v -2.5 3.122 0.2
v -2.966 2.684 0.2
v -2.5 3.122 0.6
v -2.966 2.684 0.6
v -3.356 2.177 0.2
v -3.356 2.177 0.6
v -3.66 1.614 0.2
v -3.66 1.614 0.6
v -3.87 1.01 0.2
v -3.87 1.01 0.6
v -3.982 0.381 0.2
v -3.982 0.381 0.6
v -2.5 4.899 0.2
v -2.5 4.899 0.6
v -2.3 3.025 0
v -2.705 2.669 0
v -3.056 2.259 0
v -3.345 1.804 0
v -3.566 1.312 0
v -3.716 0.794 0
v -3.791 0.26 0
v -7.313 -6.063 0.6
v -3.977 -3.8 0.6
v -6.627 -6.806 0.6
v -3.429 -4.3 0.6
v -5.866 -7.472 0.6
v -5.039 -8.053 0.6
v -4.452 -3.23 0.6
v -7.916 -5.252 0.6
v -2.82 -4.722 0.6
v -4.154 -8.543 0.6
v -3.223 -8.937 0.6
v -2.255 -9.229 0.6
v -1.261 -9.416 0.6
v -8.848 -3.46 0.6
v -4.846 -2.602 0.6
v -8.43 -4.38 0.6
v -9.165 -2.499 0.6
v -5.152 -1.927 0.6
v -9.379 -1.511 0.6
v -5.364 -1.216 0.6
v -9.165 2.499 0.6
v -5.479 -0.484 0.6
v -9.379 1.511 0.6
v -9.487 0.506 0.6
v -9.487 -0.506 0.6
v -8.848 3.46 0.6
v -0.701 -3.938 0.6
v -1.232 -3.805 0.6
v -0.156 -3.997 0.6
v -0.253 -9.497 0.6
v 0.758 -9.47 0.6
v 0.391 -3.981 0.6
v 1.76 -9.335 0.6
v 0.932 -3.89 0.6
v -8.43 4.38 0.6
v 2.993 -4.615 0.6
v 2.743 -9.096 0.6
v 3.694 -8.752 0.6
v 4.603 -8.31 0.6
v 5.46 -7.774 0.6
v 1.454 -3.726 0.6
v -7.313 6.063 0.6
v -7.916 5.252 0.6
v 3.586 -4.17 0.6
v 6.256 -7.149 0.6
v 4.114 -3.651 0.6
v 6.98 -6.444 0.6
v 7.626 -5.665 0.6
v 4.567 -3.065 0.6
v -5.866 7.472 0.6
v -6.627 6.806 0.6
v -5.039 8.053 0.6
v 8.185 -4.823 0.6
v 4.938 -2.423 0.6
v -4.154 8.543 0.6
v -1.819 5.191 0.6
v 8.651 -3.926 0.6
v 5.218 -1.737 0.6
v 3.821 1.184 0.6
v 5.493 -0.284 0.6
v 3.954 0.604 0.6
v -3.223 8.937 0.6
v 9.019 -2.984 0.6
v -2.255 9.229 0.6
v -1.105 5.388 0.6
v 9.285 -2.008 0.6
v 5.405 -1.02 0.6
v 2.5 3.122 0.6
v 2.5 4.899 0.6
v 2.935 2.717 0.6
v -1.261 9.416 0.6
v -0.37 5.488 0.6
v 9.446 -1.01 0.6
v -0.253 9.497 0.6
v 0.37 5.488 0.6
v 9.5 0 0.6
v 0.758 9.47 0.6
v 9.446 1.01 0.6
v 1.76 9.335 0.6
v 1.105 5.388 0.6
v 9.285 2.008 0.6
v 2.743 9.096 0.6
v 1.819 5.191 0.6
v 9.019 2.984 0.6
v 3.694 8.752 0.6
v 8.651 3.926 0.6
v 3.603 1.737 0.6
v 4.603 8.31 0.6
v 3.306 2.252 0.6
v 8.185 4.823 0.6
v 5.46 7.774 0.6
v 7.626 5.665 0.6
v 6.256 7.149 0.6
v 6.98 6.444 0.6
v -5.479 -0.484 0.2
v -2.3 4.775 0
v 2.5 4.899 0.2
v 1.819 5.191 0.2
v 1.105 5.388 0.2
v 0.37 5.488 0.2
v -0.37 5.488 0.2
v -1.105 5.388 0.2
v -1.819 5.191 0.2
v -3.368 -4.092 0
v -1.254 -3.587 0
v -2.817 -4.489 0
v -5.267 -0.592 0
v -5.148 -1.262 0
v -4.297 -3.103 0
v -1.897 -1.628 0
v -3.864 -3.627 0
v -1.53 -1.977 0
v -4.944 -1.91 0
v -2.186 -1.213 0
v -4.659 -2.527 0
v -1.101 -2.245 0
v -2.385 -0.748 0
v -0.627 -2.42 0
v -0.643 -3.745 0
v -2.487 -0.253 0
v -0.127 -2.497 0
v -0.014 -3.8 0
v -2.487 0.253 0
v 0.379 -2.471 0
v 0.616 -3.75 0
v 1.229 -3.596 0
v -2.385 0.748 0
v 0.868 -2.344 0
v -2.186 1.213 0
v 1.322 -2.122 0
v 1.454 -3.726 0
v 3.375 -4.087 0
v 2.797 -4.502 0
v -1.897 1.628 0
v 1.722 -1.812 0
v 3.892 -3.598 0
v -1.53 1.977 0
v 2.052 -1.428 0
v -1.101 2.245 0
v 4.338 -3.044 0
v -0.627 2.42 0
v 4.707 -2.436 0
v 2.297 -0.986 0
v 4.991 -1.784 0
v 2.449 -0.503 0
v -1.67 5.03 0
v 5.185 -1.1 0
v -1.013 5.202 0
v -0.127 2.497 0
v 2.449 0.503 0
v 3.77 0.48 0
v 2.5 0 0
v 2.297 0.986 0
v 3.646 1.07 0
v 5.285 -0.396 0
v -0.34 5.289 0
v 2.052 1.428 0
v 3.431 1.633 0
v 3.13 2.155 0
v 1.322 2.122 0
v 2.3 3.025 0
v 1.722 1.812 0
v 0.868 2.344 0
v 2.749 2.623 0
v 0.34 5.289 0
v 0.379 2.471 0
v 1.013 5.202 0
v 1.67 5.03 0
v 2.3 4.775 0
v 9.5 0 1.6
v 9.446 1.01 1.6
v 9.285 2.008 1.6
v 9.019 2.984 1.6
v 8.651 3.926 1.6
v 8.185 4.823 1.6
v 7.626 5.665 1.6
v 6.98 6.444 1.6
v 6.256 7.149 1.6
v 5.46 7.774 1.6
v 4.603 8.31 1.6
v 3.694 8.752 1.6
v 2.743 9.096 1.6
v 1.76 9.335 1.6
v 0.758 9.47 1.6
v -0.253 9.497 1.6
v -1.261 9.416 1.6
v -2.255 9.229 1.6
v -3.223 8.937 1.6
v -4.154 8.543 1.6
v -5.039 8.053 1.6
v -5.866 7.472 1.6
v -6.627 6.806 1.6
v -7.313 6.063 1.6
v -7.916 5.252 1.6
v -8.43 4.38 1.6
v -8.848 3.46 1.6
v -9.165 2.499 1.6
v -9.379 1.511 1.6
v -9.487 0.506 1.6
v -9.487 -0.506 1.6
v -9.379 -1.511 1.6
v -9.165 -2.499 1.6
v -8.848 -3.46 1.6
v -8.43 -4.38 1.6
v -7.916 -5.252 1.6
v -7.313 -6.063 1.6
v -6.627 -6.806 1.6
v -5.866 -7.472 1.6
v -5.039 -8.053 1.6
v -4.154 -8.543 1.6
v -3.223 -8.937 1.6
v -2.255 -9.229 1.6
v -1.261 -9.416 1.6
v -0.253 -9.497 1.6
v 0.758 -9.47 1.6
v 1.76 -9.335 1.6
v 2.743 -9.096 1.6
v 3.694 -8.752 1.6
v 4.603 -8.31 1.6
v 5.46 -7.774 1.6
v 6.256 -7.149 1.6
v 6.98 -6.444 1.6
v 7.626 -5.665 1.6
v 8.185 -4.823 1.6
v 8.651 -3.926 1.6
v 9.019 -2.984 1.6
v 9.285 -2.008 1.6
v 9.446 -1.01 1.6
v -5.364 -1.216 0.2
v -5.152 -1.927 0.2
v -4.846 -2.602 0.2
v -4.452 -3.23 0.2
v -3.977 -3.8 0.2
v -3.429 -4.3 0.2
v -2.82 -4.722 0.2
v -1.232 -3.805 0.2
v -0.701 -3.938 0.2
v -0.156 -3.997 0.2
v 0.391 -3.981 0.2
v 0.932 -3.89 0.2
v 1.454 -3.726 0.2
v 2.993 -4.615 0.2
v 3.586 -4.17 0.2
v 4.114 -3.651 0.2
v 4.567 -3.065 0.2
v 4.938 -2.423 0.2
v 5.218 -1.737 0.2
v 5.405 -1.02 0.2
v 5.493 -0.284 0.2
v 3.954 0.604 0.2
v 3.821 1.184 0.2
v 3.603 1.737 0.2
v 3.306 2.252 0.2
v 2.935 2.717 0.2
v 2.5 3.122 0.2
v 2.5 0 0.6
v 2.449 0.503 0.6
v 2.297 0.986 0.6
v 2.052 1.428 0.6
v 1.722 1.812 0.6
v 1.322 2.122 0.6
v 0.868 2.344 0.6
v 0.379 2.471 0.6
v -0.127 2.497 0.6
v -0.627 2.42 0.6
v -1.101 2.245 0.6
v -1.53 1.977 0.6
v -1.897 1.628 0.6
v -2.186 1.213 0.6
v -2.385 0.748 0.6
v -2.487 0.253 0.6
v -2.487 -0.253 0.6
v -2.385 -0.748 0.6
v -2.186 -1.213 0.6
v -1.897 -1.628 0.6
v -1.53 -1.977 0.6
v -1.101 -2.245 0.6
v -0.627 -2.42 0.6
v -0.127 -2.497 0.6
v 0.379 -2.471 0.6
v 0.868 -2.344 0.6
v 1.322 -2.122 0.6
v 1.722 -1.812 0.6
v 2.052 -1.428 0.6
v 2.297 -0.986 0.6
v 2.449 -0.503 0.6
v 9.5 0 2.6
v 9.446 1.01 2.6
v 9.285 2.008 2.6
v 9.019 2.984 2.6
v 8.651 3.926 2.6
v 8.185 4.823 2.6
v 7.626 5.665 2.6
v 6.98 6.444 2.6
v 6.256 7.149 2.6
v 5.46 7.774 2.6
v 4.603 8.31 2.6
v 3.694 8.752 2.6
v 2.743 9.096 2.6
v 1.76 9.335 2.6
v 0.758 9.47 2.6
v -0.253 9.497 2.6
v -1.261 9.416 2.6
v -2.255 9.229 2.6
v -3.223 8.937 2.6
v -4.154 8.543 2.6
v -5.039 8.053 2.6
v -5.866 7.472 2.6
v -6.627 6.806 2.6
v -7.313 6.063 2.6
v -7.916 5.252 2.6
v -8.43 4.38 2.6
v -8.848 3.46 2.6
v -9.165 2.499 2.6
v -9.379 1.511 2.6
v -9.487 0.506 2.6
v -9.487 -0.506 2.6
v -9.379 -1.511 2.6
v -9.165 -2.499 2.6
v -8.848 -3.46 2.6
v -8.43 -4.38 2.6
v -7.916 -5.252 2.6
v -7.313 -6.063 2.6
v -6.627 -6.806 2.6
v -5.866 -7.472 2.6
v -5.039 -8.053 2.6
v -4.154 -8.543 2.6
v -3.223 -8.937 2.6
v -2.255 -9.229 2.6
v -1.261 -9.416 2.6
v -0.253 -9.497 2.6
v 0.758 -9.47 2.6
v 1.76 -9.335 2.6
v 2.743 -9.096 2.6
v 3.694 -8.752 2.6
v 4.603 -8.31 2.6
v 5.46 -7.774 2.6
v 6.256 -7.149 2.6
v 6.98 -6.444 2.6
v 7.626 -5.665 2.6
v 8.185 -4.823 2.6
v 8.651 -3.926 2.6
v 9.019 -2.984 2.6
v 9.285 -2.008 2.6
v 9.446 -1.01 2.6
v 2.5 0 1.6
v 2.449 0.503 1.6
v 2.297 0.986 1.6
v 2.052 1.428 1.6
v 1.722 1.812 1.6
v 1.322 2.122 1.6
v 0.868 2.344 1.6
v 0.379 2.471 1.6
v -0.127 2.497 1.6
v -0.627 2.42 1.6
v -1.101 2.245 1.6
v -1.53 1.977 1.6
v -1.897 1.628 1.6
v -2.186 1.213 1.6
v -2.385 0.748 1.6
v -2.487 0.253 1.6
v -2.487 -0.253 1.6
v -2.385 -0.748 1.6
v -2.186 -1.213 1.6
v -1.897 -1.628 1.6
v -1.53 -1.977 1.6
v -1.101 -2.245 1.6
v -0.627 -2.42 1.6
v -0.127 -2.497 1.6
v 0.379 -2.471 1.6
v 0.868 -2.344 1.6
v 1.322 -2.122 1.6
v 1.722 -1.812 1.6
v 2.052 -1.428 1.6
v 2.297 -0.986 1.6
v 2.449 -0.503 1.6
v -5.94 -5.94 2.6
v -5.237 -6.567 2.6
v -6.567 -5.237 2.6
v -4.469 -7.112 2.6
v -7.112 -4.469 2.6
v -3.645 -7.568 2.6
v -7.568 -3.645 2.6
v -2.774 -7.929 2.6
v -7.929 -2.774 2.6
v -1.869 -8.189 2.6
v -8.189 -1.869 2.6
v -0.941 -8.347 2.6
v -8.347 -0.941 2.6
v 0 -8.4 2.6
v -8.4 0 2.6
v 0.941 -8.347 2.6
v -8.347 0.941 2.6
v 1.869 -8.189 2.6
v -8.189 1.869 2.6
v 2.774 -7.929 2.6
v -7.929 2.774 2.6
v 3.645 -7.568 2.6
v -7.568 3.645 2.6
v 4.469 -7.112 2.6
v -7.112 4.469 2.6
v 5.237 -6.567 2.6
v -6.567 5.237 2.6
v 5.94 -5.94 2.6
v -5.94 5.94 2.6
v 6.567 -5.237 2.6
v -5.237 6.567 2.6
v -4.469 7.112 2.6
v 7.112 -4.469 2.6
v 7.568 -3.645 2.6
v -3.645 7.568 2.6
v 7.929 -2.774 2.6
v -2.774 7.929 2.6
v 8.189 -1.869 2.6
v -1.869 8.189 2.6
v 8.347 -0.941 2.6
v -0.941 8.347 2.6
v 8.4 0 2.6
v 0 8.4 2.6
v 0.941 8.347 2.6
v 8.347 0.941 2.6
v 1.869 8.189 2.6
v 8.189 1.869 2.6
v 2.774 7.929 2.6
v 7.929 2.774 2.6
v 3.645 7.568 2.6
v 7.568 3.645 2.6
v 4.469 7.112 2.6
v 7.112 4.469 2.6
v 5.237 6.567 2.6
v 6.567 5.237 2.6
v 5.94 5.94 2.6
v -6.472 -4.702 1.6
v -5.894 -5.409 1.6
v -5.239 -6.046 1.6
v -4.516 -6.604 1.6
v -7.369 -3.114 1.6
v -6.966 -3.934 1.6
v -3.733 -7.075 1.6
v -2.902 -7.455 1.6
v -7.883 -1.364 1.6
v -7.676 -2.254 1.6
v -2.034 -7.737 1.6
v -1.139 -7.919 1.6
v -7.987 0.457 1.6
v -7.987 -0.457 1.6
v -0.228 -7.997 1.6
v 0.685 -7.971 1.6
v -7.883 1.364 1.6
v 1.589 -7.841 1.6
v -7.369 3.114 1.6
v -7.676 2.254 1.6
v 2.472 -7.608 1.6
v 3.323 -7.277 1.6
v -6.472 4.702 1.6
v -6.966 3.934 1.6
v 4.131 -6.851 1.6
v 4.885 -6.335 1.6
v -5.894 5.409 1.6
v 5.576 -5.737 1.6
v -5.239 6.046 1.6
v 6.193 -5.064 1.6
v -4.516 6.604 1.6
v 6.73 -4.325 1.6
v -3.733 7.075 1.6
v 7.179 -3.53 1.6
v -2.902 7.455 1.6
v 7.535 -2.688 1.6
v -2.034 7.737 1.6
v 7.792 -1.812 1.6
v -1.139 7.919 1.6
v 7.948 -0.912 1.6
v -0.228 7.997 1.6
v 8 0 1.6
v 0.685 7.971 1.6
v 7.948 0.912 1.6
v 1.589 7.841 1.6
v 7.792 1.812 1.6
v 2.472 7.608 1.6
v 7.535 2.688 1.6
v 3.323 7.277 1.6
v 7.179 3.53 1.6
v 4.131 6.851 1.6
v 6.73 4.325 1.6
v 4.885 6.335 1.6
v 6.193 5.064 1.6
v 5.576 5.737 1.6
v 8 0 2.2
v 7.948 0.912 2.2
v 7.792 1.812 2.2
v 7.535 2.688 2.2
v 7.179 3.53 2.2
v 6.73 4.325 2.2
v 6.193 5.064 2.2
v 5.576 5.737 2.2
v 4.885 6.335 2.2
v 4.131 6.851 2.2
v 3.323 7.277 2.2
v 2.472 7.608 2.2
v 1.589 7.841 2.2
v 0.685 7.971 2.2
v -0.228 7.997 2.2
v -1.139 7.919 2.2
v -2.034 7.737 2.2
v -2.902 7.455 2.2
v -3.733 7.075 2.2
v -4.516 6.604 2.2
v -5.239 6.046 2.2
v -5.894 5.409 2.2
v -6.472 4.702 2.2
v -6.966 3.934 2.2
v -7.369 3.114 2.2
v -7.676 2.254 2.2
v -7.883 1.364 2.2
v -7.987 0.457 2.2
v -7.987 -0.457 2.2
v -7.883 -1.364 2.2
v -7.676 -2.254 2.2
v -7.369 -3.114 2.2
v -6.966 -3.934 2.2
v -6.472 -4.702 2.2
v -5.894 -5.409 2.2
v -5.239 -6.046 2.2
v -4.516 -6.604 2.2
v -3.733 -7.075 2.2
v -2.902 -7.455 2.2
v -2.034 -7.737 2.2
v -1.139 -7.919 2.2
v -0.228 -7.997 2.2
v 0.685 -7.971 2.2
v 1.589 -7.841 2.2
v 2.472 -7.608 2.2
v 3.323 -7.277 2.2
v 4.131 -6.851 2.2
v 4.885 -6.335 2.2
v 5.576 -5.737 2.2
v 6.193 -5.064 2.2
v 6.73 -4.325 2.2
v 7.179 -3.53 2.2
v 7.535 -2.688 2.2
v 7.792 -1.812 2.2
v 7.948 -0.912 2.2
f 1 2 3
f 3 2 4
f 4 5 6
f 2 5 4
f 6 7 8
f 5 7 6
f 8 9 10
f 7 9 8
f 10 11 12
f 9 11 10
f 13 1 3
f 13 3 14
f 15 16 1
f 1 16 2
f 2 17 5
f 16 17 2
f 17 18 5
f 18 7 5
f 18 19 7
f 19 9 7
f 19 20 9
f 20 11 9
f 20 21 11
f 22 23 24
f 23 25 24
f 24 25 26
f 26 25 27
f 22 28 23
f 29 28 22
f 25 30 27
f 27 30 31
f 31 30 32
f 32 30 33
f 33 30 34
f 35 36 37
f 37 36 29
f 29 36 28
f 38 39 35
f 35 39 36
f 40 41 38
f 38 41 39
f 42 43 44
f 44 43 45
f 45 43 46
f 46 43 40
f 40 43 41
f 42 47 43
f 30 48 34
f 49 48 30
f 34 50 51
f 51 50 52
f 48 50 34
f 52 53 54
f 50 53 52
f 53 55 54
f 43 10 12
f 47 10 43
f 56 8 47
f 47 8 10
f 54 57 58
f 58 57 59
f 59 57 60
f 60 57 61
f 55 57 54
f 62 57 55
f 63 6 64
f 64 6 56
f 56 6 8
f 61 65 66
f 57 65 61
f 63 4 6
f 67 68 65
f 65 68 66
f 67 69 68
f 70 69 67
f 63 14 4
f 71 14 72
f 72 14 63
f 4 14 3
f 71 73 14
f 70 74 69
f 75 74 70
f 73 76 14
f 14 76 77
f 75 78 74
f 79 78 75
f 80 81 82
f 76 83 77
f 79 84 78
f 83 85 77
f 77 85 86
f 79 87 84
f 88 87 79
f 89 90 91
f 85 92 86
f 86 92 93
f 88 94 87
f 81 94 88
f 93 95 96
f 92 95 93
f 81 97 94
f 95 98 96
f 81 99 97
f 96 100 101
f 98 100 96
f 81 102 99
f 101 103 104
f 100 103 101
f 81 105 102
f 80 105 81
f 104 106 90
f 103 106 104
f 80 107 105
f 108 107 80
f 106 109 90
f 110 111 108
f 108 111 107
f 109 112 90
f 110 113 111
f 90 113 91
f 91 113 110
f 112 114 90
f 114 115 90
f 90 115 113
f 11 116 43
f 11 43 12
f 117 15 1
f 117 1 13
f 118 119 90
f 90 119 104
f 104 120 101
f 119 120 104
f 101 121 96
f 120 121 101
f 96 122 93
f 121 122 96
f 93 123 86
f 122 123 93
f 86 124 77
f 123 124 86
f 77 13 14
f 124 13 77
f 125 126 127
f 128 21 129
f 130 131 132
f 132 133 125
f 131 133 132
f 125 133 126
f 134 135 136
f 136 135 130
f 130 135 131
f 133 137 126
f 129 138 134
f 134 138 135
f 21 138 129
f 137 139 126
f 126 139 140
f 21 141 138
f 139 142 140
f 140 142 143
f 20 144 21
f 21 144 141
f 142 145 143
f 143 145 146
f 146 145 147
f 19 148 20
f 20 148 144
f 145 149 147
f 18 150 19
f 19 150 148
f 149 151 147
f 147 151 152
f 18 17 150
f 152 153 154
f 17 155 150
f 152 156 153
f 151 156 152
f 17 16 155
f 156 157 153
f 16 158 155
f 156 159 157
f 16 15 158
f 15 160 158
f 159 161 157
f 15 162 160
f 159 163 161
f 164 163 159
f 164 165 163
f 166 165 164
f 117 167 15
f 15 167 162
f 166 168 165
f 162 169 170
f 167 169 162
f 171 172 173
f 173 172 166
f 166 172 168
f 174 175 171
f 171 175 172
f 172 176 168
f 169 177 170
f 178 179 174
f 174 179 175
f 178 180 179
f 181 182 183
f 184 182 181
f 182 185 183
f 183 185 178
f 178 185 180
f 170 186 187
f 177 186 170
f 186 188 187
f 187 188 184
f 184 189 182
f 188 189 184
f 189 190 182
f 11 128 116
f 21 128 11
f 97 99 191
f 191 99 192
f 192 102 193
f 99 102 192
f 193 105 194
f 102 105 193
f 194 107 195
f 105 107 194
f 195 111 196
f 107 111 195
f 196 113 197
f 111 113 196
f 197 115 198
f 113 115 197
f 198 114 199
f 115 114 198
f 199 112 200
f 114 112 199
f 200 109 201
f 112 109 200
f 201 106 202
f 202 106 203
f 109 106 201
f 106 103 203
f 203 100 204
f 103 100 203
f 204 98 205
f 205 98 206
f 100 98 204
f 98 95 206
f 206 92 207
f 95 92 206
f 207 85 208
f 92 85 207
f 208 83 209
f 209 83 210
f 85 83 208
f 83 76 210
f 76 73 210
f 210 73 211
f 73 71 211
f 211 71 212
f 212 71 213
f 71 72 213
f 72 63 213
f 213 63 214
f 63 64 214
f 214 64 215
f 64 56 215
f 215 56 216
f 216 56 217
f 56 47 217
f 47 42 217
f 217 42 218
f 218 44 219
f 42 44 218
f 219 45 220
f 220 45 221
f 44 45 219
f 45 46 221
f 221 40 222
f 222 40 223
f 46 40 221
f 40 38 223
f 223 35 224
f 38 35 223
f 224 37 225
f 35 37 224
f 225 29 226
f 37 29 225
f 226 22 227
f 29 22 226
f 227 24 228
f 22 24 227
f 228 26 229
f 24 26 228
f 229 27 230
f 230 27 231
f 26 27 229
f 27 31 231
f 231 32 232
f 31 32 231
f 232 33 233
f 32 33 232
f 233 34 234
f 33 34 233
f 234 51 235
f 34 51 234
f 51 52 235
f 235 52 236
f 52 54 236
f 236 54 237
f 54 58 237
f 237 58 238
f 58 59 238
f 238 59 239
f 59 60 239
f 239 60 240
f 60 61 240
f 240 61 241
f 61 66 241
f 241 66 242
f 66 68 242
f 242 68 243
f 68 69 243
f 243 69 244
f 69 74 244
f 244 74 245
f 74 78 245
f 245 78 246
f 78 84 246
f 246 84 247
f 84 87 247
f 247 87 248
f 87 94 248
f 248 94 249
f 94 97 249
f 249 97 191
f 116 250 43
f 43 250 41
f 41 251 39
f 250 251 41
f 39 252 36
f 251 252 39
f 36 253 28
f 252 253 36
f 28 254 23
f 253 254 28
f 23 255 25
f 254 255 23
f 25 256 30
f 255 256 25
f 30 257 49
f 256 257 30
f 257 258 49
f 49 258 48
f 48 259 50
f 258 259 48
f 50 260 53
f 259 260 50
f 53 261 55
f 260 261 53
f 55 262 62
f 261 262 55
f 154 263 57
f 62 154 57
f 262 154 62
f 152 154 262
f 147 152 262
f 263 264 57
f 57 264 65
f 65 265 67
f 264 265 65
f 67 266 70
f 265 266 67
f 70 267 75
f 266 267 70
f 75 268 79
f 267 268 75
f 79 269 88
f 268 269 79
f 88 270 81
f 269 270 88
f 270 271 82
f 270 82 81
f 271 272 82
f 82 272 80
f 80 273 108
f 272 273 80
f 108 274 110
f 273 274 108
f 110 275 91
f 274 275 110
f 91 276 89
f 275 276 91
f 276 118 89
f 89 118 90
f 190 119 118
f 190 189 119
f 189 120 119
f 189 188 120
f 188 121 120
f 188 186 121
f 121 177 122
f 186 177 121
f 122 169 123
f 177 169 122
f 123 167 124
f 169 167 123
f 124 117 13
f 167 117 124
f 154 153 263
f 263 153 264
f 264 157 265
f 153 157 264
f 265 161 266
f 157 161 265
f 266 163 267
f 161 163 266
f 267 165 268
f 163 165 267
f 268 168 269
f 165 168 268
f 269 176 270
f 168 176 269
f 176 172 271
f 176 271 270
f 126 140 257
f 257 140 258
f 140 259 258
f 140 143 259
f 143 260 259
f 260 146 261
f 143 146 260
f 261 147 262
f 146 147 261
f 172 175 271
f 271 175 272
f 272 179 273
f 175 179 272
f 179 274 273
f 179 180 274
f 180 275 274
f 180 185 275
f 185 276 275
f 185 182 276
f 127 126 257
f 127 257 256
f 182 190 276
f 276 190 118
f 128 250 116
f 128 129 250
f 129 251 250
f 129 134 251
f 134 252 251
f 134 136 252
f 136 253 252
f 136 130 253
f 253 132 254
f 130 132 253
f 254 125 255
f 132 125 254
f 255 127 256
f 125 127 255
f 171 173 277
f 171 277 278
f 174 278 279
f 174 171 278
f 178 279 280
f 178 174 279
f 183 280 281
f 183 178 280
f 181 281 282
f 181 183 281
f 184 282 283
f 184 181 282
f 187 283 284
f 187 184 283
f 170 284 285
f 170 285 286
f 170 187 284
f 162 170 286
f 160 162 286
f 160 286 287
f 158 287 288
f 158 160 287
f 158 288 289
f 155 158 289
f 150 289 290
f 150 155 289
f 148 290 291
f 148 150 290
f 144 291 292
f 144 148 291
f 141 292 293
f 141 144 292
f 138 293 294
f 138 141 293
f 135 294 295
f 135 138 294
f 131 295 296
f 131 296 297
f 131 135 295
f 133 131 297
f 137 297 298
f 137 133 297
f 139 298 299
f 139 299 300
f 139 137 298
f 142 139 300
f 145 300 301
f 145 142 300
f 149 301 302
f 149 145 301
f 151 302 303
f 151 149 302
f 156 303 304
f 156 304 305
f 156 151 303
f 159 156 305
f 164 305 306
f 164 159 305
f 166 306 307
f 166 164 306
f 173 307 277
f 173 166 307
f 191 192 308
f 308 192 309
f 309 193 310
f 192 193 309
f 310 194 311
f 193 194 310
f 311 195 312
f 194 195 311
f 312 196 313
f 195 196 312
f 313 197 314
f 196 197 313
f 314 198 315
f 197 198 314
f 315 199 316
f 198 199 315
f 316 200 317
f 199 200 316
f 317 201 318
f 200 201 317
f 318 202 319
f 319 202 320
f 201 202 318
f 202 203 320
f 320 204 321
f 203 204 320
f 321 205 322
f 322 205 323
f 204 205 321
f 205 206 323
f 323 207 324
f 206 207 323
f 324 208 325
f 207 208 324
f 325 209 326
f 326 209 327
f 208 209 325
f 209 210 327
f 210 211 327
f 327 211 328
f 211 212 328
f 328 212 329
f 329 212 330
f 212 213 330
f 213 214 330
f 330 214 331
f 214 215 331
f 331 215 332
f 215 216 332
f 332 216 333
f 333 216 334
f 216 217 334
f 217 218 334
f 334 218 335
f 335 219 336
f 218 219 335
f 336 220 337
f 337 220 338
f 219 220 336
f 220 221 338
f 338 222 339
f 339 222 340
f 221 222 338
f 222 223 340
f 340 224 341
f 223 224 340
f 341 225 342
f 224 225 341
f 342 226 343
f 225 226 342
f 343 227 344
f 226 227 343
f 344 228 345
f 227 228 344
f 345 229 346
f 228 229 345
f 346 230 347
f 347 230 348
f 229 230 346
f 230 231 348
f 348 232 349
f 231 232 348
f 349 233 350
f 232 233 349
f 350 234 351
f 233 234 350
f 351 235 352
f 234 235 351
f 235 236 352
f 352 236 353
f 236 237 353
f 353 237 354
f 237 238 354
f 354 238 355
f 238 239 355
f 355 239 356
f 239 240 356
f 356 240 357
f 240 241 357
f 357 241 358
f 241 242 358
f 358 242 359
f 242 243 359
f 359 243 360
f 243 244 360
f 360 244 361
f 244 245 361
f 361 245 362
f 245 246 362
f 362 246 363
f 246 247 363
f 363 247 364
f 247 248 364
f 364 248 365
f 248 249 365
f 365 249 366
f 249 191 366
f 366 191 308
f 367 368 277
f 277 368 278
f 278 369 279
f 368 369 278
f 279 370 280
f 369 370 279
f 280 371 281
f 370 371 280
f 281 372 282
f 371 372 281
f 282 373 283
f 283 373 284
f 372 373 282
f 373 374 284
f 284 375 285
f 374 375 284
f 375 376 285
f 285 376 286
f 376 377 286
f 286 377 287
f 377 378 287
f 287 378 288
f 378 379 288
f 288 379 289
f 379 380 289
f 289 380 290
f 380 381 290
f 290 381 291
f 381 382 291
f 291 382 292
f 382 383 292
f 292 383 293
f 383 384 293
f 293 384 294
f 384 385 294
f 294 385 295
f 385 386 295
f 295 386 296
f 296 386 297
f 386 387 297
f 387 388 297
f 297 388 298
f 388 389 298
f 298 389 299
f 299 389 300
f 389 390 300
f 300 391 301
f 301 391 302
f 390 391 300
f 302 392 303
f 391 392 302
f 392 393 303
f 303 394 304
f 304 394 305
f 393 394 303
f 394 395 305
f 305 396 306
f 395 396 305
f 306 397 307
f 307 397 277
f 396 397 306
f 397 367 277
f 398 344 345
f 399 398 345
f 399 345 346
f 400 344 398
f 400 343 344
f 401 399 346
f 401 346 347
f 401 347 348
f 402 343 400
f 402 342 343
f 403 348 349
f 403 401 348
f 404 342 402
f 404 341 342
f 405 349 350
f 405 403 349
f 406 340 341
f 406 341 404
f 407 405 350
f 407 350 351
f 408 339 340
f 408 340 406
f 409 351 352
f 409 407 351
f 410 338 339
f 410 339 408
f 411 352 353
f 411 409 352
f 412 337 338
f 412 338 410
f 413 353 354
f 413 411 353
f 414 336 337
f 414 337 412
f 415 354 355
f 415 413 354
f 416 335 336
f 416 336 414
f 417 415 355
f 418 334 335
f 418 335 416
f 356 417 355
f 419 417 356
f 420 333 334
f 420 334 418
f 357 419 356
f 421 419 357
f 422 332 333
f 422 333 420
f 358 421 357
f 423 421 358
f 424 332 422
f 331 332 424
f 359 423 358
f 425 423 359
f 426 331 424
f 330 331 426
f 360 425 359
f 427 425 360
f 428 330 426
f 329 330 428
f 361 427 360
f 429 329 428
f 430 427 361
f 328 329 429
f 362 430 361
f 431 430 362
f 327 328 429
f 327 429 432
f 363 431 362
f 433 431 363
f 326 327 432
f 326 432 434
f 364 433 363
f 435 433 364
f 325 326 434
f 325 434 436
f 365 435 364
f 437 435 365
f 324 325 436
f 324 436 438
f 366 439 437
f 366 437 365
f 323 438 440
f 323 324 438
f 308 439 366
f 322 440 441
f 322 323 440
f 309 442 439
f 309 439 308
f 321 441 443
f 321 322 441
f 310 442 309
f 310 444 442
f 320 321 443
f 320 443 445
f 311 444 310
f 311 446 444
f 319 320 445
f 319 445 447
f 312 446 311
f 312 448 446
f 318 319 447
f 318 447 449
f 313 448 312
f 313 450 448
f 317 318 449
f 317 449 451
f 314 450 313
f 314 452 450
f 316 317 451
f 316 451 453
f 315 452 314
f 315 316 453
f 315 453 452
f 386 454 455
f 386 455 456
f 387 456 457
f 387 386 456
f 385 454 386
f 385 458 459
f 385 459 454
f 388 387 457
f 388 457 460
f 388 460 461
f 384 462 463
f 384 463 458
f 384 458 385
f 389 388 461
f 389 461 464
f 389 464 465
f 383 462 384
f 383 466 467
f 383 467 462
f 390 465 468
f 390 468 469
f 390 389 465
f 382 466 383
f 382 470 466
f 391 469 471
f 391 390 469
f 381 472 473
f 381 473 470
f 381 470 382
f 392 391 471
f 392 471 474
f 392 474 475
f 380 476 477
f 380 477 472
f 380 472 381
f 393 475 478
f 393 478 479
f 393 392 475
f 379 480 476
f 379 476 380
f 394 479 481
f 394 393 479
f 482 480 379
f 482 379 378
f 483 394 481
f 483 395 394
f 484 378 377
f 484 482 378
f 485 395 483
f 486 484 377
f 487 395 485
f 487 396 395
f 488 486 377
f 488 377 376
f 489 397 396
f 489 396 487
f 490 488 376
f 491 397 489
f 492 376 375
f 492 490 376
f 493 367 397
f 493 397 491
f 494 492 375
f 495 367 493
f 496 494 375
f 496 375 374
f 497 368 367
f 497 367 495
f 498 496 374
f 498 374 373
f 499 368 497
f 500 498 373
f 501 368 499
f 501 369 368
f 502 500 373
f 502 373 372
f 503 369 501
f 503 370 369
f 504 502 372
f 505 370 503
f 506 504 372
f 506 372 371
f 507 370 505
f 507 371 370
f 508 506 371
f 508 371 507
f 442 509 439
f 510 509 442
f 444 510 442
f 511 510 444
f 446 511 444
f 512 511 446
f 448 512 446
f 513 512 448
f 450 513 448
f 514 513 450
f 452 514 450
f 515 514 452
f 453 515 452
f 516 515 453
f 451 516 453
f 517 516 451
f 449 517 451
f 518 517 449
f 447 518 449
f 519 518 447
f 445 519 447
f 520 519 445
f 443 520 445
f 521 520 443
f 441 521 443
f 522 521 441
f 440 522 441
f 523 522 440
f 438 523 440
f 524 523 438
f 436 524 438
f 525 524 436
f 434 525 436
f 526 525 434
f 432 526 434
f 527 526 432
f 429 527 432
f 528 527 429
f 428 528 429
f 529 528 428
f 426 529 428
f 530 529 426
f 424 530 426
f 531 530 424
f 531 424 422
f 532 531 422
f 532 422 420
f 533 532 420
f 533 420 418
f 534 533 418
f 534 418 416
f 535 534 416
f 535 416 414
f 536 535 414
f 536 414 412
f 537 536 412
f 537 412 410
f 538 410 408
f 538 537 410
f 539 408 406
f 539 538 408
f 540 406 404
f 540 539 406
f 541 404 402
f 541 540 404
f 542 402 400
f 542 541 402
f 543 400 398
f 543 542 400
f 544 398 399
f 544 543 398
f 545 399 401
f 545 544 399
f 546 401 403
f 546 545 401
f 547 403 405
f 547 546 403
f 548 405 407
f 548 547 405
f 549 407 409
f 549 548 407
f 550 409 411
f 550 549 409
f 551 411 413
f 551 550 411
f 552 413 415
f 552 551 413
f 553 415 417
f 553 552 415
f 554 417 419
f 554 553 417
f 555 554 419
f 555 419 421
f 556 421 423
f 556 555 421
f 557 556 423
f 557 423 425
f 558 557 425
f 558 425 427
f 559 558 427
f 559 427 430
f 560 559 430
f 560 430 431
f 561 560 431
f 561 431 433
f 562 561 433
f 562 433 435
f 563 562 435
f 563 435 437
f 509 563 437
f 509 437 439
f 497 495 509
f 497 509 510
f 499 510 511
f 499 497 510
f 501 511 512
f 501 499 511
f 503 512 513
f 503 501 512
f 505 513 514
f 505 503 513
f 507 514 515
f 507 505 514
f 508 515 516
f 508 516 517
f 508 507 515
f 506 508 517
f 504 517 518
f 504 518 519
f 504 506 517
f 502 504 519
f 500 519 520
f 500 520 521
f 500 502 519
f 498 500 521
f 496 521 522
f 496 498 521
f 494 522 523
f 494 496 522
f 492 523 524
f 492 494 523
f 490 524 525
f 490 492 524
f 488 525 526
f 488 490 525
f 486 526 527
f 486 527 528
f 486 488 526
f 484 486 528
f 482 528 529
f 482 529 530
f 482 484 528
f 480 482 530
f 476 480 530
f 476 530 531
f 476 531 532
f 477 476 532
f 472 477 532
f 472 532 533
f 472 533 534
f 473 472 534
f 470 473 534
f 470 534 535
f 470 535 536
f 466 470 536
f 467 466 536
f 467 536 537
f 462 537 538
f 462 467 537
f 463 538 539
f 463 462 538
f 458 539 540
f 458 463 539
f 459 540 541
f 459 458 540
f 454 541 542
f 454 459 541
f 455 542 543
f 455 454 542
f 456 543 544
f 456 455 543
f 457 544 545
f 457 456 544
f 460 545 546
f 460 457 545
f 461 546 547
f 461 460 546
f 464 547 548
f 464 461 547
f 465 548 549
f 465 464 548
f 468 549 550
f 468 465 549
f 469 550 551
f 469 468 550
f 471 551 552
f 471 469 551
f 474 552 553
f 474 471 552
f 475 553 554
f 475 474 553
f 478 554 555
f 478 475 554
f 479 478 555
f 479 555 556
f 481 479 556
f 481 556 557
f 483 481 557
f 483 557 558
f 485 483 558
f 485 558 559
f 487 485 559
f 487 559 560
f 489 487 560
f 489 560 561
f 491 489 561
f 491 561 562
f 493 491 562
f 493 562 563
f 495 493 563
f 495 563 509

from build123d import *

# Parameters (mm, degrees)
SKETCH_R        = 2.5
PAD_DEPTH       = 0.6
SKETCH002_R     = 9.5
PAD001_DEPTH    = 1
SKETCH003_R     = 9.5
SKETCH003_R_2   = 8
PAD002_DEPTH    = 1
SKETCH004_R     = 2.5
POCKET_DEPTH    = 1.601
CHAMFER_SIZE    = 0.4
CHAMFER001_SIZE = 0.2


with BuildPart() as part:
    # Sketch → Pad (new body)
    with BuildSketch(Plane.XY):
        with BuildLine():
            ThreePointArc((-2.5, 3.122499), (-3.518971, 1.901799), (-3.981855, 0.380567))
            Line((-5.478695, -0.483634), (-3.981855, 0.380567))
            ThreePointArc((-5.478695, -0.483634), (-4.659167, -2.922699), (-2.81991, -4.722087))
            Line((-1.232265, -3.80546), (-2.81991, -4.722087))
            ThreePointArc((-1.232265, -3.80546), (0.117848, -3.998264), (1.454262, -3.726275))
            Line((2.992718, -4.614503), (1.454262, -3.726275))
            ThreePointArc((2.992718, -4.614503), (4.763149, -2.749985), (5.492638, -0.284484))
            Line((3.954108, 0.604177), (5.492638, -0.284484))
            ThreePointArc((3.954108, 0.604177), (3.46401, 2.000159), (2.5, 3.122499))
            Line((2.5, 3.122499), (2.5, 4.898979))
            ThreePointArc((2.5, 4.898979), (0, 5.5), (-2.5, 4.898979))
            Line((-2.5, 3.122499), (-2.5, 4.898979))
        make_face()
        Circle(SKETCH_R, mode=Mode.SUBTRACT)
    extrude(amount=PAD_DEPTH)

    # Sketch002 (on Face15 of Pad) → Pad001 (join)
    with BuildSketch(Plane.XY.offset(0.6)):
        Circle(SKETCH002_R)
    extrude(amount=PAD001_DEPTH)

    # Sketch003 (on Face3 of Pad001) → Pad002 (join)
    with BuildSketch(Plane.XY.offset(1.6)):
        Circle(SKETCH003_R)
        Circle(SKETCH003_R_2, mode=Mode.SUBTRACT)
    extrude(amount=PAD002_DEPTH)

    # Sketch004 (on Face20 of Pad002) → Pocket (cut, through all)
    with BuildSketch(Plane.XY.offset(1.6)):
        Circle(SKETCH004_R)
    extrude(amount=-POCKET_DEPTH, mode=Mode.SUBTRACT)

    # Chamfer
    chamfer_edges = [part.edges().sort_by_distance(p)[0] for p in [
        (-8, 0, 2.6),
    ]]
    chamfer(chamfer_edges, length=CHAMFER_SIZE)

    # Chamfer001
    chamfer001_edges = [part.edges().sort_by_distance(p)[0] for p in [
        (4.723373, 0.159847, 0),
        (4.763149, -2.749985, 0),
        (0.117848, -3.998264, 0),
        (-2.026088, -4.263773, 0),
        (-4.659167, -2.922699, 0),
        (-4.730275, -0.051534, 0),
        (-3.518971, 1.901799, 0),
        (-2.5, 4.010739, 0),
        (0, 5.5, 0),
        (2.5, 4.010739, 0),
        (3.46401, 2.000159, 0),
    ]]
    chamfer(chamfer001_edges, length=CHAMFER001_SIZE)


solid = part.part
